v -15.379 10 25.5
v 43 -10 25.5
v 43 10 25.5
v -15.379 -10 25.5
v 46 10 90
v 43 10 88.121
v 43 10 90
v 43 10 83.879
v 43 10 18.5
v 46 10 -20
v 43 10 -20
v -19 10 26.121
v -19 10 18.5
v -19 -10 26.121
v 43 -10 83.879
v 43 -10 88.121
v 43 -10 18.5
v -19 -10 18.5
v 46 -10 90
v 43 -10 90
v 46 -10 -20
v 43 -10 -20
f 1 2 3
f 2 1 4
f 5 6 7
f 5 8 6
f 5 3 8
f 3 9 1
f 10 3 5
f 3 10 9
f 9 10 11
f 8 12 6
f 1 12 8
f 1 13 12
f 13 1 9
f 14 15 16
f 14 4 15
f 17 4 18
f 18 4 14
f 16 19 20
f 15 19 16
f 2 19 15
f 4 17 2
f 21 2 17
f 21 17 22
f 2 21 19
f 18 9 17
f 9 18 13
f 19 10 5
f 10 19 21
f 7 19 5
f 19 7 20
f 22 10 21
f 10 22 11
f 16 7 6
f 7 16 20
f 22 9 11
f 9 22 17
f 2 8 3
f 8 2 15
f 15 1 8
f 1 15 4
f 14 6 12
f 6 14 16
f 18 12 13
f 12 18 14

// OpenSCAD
width=20;


difference() 
    {
union() {
difference() 
    {
        translate([-5, 0, 3]) cube([100, width, 45], true);
        translate([0, 0, -4]) cube([88, 40, 45], true);
    }
    
    translate([92/2-1.5, 0, 35]) cube([3, width, 110], true);
    
    translate([13, 0, 56]) rotate([0, 45, 0]) cube([3, width, 90], true);
}

translate([-69, 0, 0]) cube([100, 100, 100], true);
}
